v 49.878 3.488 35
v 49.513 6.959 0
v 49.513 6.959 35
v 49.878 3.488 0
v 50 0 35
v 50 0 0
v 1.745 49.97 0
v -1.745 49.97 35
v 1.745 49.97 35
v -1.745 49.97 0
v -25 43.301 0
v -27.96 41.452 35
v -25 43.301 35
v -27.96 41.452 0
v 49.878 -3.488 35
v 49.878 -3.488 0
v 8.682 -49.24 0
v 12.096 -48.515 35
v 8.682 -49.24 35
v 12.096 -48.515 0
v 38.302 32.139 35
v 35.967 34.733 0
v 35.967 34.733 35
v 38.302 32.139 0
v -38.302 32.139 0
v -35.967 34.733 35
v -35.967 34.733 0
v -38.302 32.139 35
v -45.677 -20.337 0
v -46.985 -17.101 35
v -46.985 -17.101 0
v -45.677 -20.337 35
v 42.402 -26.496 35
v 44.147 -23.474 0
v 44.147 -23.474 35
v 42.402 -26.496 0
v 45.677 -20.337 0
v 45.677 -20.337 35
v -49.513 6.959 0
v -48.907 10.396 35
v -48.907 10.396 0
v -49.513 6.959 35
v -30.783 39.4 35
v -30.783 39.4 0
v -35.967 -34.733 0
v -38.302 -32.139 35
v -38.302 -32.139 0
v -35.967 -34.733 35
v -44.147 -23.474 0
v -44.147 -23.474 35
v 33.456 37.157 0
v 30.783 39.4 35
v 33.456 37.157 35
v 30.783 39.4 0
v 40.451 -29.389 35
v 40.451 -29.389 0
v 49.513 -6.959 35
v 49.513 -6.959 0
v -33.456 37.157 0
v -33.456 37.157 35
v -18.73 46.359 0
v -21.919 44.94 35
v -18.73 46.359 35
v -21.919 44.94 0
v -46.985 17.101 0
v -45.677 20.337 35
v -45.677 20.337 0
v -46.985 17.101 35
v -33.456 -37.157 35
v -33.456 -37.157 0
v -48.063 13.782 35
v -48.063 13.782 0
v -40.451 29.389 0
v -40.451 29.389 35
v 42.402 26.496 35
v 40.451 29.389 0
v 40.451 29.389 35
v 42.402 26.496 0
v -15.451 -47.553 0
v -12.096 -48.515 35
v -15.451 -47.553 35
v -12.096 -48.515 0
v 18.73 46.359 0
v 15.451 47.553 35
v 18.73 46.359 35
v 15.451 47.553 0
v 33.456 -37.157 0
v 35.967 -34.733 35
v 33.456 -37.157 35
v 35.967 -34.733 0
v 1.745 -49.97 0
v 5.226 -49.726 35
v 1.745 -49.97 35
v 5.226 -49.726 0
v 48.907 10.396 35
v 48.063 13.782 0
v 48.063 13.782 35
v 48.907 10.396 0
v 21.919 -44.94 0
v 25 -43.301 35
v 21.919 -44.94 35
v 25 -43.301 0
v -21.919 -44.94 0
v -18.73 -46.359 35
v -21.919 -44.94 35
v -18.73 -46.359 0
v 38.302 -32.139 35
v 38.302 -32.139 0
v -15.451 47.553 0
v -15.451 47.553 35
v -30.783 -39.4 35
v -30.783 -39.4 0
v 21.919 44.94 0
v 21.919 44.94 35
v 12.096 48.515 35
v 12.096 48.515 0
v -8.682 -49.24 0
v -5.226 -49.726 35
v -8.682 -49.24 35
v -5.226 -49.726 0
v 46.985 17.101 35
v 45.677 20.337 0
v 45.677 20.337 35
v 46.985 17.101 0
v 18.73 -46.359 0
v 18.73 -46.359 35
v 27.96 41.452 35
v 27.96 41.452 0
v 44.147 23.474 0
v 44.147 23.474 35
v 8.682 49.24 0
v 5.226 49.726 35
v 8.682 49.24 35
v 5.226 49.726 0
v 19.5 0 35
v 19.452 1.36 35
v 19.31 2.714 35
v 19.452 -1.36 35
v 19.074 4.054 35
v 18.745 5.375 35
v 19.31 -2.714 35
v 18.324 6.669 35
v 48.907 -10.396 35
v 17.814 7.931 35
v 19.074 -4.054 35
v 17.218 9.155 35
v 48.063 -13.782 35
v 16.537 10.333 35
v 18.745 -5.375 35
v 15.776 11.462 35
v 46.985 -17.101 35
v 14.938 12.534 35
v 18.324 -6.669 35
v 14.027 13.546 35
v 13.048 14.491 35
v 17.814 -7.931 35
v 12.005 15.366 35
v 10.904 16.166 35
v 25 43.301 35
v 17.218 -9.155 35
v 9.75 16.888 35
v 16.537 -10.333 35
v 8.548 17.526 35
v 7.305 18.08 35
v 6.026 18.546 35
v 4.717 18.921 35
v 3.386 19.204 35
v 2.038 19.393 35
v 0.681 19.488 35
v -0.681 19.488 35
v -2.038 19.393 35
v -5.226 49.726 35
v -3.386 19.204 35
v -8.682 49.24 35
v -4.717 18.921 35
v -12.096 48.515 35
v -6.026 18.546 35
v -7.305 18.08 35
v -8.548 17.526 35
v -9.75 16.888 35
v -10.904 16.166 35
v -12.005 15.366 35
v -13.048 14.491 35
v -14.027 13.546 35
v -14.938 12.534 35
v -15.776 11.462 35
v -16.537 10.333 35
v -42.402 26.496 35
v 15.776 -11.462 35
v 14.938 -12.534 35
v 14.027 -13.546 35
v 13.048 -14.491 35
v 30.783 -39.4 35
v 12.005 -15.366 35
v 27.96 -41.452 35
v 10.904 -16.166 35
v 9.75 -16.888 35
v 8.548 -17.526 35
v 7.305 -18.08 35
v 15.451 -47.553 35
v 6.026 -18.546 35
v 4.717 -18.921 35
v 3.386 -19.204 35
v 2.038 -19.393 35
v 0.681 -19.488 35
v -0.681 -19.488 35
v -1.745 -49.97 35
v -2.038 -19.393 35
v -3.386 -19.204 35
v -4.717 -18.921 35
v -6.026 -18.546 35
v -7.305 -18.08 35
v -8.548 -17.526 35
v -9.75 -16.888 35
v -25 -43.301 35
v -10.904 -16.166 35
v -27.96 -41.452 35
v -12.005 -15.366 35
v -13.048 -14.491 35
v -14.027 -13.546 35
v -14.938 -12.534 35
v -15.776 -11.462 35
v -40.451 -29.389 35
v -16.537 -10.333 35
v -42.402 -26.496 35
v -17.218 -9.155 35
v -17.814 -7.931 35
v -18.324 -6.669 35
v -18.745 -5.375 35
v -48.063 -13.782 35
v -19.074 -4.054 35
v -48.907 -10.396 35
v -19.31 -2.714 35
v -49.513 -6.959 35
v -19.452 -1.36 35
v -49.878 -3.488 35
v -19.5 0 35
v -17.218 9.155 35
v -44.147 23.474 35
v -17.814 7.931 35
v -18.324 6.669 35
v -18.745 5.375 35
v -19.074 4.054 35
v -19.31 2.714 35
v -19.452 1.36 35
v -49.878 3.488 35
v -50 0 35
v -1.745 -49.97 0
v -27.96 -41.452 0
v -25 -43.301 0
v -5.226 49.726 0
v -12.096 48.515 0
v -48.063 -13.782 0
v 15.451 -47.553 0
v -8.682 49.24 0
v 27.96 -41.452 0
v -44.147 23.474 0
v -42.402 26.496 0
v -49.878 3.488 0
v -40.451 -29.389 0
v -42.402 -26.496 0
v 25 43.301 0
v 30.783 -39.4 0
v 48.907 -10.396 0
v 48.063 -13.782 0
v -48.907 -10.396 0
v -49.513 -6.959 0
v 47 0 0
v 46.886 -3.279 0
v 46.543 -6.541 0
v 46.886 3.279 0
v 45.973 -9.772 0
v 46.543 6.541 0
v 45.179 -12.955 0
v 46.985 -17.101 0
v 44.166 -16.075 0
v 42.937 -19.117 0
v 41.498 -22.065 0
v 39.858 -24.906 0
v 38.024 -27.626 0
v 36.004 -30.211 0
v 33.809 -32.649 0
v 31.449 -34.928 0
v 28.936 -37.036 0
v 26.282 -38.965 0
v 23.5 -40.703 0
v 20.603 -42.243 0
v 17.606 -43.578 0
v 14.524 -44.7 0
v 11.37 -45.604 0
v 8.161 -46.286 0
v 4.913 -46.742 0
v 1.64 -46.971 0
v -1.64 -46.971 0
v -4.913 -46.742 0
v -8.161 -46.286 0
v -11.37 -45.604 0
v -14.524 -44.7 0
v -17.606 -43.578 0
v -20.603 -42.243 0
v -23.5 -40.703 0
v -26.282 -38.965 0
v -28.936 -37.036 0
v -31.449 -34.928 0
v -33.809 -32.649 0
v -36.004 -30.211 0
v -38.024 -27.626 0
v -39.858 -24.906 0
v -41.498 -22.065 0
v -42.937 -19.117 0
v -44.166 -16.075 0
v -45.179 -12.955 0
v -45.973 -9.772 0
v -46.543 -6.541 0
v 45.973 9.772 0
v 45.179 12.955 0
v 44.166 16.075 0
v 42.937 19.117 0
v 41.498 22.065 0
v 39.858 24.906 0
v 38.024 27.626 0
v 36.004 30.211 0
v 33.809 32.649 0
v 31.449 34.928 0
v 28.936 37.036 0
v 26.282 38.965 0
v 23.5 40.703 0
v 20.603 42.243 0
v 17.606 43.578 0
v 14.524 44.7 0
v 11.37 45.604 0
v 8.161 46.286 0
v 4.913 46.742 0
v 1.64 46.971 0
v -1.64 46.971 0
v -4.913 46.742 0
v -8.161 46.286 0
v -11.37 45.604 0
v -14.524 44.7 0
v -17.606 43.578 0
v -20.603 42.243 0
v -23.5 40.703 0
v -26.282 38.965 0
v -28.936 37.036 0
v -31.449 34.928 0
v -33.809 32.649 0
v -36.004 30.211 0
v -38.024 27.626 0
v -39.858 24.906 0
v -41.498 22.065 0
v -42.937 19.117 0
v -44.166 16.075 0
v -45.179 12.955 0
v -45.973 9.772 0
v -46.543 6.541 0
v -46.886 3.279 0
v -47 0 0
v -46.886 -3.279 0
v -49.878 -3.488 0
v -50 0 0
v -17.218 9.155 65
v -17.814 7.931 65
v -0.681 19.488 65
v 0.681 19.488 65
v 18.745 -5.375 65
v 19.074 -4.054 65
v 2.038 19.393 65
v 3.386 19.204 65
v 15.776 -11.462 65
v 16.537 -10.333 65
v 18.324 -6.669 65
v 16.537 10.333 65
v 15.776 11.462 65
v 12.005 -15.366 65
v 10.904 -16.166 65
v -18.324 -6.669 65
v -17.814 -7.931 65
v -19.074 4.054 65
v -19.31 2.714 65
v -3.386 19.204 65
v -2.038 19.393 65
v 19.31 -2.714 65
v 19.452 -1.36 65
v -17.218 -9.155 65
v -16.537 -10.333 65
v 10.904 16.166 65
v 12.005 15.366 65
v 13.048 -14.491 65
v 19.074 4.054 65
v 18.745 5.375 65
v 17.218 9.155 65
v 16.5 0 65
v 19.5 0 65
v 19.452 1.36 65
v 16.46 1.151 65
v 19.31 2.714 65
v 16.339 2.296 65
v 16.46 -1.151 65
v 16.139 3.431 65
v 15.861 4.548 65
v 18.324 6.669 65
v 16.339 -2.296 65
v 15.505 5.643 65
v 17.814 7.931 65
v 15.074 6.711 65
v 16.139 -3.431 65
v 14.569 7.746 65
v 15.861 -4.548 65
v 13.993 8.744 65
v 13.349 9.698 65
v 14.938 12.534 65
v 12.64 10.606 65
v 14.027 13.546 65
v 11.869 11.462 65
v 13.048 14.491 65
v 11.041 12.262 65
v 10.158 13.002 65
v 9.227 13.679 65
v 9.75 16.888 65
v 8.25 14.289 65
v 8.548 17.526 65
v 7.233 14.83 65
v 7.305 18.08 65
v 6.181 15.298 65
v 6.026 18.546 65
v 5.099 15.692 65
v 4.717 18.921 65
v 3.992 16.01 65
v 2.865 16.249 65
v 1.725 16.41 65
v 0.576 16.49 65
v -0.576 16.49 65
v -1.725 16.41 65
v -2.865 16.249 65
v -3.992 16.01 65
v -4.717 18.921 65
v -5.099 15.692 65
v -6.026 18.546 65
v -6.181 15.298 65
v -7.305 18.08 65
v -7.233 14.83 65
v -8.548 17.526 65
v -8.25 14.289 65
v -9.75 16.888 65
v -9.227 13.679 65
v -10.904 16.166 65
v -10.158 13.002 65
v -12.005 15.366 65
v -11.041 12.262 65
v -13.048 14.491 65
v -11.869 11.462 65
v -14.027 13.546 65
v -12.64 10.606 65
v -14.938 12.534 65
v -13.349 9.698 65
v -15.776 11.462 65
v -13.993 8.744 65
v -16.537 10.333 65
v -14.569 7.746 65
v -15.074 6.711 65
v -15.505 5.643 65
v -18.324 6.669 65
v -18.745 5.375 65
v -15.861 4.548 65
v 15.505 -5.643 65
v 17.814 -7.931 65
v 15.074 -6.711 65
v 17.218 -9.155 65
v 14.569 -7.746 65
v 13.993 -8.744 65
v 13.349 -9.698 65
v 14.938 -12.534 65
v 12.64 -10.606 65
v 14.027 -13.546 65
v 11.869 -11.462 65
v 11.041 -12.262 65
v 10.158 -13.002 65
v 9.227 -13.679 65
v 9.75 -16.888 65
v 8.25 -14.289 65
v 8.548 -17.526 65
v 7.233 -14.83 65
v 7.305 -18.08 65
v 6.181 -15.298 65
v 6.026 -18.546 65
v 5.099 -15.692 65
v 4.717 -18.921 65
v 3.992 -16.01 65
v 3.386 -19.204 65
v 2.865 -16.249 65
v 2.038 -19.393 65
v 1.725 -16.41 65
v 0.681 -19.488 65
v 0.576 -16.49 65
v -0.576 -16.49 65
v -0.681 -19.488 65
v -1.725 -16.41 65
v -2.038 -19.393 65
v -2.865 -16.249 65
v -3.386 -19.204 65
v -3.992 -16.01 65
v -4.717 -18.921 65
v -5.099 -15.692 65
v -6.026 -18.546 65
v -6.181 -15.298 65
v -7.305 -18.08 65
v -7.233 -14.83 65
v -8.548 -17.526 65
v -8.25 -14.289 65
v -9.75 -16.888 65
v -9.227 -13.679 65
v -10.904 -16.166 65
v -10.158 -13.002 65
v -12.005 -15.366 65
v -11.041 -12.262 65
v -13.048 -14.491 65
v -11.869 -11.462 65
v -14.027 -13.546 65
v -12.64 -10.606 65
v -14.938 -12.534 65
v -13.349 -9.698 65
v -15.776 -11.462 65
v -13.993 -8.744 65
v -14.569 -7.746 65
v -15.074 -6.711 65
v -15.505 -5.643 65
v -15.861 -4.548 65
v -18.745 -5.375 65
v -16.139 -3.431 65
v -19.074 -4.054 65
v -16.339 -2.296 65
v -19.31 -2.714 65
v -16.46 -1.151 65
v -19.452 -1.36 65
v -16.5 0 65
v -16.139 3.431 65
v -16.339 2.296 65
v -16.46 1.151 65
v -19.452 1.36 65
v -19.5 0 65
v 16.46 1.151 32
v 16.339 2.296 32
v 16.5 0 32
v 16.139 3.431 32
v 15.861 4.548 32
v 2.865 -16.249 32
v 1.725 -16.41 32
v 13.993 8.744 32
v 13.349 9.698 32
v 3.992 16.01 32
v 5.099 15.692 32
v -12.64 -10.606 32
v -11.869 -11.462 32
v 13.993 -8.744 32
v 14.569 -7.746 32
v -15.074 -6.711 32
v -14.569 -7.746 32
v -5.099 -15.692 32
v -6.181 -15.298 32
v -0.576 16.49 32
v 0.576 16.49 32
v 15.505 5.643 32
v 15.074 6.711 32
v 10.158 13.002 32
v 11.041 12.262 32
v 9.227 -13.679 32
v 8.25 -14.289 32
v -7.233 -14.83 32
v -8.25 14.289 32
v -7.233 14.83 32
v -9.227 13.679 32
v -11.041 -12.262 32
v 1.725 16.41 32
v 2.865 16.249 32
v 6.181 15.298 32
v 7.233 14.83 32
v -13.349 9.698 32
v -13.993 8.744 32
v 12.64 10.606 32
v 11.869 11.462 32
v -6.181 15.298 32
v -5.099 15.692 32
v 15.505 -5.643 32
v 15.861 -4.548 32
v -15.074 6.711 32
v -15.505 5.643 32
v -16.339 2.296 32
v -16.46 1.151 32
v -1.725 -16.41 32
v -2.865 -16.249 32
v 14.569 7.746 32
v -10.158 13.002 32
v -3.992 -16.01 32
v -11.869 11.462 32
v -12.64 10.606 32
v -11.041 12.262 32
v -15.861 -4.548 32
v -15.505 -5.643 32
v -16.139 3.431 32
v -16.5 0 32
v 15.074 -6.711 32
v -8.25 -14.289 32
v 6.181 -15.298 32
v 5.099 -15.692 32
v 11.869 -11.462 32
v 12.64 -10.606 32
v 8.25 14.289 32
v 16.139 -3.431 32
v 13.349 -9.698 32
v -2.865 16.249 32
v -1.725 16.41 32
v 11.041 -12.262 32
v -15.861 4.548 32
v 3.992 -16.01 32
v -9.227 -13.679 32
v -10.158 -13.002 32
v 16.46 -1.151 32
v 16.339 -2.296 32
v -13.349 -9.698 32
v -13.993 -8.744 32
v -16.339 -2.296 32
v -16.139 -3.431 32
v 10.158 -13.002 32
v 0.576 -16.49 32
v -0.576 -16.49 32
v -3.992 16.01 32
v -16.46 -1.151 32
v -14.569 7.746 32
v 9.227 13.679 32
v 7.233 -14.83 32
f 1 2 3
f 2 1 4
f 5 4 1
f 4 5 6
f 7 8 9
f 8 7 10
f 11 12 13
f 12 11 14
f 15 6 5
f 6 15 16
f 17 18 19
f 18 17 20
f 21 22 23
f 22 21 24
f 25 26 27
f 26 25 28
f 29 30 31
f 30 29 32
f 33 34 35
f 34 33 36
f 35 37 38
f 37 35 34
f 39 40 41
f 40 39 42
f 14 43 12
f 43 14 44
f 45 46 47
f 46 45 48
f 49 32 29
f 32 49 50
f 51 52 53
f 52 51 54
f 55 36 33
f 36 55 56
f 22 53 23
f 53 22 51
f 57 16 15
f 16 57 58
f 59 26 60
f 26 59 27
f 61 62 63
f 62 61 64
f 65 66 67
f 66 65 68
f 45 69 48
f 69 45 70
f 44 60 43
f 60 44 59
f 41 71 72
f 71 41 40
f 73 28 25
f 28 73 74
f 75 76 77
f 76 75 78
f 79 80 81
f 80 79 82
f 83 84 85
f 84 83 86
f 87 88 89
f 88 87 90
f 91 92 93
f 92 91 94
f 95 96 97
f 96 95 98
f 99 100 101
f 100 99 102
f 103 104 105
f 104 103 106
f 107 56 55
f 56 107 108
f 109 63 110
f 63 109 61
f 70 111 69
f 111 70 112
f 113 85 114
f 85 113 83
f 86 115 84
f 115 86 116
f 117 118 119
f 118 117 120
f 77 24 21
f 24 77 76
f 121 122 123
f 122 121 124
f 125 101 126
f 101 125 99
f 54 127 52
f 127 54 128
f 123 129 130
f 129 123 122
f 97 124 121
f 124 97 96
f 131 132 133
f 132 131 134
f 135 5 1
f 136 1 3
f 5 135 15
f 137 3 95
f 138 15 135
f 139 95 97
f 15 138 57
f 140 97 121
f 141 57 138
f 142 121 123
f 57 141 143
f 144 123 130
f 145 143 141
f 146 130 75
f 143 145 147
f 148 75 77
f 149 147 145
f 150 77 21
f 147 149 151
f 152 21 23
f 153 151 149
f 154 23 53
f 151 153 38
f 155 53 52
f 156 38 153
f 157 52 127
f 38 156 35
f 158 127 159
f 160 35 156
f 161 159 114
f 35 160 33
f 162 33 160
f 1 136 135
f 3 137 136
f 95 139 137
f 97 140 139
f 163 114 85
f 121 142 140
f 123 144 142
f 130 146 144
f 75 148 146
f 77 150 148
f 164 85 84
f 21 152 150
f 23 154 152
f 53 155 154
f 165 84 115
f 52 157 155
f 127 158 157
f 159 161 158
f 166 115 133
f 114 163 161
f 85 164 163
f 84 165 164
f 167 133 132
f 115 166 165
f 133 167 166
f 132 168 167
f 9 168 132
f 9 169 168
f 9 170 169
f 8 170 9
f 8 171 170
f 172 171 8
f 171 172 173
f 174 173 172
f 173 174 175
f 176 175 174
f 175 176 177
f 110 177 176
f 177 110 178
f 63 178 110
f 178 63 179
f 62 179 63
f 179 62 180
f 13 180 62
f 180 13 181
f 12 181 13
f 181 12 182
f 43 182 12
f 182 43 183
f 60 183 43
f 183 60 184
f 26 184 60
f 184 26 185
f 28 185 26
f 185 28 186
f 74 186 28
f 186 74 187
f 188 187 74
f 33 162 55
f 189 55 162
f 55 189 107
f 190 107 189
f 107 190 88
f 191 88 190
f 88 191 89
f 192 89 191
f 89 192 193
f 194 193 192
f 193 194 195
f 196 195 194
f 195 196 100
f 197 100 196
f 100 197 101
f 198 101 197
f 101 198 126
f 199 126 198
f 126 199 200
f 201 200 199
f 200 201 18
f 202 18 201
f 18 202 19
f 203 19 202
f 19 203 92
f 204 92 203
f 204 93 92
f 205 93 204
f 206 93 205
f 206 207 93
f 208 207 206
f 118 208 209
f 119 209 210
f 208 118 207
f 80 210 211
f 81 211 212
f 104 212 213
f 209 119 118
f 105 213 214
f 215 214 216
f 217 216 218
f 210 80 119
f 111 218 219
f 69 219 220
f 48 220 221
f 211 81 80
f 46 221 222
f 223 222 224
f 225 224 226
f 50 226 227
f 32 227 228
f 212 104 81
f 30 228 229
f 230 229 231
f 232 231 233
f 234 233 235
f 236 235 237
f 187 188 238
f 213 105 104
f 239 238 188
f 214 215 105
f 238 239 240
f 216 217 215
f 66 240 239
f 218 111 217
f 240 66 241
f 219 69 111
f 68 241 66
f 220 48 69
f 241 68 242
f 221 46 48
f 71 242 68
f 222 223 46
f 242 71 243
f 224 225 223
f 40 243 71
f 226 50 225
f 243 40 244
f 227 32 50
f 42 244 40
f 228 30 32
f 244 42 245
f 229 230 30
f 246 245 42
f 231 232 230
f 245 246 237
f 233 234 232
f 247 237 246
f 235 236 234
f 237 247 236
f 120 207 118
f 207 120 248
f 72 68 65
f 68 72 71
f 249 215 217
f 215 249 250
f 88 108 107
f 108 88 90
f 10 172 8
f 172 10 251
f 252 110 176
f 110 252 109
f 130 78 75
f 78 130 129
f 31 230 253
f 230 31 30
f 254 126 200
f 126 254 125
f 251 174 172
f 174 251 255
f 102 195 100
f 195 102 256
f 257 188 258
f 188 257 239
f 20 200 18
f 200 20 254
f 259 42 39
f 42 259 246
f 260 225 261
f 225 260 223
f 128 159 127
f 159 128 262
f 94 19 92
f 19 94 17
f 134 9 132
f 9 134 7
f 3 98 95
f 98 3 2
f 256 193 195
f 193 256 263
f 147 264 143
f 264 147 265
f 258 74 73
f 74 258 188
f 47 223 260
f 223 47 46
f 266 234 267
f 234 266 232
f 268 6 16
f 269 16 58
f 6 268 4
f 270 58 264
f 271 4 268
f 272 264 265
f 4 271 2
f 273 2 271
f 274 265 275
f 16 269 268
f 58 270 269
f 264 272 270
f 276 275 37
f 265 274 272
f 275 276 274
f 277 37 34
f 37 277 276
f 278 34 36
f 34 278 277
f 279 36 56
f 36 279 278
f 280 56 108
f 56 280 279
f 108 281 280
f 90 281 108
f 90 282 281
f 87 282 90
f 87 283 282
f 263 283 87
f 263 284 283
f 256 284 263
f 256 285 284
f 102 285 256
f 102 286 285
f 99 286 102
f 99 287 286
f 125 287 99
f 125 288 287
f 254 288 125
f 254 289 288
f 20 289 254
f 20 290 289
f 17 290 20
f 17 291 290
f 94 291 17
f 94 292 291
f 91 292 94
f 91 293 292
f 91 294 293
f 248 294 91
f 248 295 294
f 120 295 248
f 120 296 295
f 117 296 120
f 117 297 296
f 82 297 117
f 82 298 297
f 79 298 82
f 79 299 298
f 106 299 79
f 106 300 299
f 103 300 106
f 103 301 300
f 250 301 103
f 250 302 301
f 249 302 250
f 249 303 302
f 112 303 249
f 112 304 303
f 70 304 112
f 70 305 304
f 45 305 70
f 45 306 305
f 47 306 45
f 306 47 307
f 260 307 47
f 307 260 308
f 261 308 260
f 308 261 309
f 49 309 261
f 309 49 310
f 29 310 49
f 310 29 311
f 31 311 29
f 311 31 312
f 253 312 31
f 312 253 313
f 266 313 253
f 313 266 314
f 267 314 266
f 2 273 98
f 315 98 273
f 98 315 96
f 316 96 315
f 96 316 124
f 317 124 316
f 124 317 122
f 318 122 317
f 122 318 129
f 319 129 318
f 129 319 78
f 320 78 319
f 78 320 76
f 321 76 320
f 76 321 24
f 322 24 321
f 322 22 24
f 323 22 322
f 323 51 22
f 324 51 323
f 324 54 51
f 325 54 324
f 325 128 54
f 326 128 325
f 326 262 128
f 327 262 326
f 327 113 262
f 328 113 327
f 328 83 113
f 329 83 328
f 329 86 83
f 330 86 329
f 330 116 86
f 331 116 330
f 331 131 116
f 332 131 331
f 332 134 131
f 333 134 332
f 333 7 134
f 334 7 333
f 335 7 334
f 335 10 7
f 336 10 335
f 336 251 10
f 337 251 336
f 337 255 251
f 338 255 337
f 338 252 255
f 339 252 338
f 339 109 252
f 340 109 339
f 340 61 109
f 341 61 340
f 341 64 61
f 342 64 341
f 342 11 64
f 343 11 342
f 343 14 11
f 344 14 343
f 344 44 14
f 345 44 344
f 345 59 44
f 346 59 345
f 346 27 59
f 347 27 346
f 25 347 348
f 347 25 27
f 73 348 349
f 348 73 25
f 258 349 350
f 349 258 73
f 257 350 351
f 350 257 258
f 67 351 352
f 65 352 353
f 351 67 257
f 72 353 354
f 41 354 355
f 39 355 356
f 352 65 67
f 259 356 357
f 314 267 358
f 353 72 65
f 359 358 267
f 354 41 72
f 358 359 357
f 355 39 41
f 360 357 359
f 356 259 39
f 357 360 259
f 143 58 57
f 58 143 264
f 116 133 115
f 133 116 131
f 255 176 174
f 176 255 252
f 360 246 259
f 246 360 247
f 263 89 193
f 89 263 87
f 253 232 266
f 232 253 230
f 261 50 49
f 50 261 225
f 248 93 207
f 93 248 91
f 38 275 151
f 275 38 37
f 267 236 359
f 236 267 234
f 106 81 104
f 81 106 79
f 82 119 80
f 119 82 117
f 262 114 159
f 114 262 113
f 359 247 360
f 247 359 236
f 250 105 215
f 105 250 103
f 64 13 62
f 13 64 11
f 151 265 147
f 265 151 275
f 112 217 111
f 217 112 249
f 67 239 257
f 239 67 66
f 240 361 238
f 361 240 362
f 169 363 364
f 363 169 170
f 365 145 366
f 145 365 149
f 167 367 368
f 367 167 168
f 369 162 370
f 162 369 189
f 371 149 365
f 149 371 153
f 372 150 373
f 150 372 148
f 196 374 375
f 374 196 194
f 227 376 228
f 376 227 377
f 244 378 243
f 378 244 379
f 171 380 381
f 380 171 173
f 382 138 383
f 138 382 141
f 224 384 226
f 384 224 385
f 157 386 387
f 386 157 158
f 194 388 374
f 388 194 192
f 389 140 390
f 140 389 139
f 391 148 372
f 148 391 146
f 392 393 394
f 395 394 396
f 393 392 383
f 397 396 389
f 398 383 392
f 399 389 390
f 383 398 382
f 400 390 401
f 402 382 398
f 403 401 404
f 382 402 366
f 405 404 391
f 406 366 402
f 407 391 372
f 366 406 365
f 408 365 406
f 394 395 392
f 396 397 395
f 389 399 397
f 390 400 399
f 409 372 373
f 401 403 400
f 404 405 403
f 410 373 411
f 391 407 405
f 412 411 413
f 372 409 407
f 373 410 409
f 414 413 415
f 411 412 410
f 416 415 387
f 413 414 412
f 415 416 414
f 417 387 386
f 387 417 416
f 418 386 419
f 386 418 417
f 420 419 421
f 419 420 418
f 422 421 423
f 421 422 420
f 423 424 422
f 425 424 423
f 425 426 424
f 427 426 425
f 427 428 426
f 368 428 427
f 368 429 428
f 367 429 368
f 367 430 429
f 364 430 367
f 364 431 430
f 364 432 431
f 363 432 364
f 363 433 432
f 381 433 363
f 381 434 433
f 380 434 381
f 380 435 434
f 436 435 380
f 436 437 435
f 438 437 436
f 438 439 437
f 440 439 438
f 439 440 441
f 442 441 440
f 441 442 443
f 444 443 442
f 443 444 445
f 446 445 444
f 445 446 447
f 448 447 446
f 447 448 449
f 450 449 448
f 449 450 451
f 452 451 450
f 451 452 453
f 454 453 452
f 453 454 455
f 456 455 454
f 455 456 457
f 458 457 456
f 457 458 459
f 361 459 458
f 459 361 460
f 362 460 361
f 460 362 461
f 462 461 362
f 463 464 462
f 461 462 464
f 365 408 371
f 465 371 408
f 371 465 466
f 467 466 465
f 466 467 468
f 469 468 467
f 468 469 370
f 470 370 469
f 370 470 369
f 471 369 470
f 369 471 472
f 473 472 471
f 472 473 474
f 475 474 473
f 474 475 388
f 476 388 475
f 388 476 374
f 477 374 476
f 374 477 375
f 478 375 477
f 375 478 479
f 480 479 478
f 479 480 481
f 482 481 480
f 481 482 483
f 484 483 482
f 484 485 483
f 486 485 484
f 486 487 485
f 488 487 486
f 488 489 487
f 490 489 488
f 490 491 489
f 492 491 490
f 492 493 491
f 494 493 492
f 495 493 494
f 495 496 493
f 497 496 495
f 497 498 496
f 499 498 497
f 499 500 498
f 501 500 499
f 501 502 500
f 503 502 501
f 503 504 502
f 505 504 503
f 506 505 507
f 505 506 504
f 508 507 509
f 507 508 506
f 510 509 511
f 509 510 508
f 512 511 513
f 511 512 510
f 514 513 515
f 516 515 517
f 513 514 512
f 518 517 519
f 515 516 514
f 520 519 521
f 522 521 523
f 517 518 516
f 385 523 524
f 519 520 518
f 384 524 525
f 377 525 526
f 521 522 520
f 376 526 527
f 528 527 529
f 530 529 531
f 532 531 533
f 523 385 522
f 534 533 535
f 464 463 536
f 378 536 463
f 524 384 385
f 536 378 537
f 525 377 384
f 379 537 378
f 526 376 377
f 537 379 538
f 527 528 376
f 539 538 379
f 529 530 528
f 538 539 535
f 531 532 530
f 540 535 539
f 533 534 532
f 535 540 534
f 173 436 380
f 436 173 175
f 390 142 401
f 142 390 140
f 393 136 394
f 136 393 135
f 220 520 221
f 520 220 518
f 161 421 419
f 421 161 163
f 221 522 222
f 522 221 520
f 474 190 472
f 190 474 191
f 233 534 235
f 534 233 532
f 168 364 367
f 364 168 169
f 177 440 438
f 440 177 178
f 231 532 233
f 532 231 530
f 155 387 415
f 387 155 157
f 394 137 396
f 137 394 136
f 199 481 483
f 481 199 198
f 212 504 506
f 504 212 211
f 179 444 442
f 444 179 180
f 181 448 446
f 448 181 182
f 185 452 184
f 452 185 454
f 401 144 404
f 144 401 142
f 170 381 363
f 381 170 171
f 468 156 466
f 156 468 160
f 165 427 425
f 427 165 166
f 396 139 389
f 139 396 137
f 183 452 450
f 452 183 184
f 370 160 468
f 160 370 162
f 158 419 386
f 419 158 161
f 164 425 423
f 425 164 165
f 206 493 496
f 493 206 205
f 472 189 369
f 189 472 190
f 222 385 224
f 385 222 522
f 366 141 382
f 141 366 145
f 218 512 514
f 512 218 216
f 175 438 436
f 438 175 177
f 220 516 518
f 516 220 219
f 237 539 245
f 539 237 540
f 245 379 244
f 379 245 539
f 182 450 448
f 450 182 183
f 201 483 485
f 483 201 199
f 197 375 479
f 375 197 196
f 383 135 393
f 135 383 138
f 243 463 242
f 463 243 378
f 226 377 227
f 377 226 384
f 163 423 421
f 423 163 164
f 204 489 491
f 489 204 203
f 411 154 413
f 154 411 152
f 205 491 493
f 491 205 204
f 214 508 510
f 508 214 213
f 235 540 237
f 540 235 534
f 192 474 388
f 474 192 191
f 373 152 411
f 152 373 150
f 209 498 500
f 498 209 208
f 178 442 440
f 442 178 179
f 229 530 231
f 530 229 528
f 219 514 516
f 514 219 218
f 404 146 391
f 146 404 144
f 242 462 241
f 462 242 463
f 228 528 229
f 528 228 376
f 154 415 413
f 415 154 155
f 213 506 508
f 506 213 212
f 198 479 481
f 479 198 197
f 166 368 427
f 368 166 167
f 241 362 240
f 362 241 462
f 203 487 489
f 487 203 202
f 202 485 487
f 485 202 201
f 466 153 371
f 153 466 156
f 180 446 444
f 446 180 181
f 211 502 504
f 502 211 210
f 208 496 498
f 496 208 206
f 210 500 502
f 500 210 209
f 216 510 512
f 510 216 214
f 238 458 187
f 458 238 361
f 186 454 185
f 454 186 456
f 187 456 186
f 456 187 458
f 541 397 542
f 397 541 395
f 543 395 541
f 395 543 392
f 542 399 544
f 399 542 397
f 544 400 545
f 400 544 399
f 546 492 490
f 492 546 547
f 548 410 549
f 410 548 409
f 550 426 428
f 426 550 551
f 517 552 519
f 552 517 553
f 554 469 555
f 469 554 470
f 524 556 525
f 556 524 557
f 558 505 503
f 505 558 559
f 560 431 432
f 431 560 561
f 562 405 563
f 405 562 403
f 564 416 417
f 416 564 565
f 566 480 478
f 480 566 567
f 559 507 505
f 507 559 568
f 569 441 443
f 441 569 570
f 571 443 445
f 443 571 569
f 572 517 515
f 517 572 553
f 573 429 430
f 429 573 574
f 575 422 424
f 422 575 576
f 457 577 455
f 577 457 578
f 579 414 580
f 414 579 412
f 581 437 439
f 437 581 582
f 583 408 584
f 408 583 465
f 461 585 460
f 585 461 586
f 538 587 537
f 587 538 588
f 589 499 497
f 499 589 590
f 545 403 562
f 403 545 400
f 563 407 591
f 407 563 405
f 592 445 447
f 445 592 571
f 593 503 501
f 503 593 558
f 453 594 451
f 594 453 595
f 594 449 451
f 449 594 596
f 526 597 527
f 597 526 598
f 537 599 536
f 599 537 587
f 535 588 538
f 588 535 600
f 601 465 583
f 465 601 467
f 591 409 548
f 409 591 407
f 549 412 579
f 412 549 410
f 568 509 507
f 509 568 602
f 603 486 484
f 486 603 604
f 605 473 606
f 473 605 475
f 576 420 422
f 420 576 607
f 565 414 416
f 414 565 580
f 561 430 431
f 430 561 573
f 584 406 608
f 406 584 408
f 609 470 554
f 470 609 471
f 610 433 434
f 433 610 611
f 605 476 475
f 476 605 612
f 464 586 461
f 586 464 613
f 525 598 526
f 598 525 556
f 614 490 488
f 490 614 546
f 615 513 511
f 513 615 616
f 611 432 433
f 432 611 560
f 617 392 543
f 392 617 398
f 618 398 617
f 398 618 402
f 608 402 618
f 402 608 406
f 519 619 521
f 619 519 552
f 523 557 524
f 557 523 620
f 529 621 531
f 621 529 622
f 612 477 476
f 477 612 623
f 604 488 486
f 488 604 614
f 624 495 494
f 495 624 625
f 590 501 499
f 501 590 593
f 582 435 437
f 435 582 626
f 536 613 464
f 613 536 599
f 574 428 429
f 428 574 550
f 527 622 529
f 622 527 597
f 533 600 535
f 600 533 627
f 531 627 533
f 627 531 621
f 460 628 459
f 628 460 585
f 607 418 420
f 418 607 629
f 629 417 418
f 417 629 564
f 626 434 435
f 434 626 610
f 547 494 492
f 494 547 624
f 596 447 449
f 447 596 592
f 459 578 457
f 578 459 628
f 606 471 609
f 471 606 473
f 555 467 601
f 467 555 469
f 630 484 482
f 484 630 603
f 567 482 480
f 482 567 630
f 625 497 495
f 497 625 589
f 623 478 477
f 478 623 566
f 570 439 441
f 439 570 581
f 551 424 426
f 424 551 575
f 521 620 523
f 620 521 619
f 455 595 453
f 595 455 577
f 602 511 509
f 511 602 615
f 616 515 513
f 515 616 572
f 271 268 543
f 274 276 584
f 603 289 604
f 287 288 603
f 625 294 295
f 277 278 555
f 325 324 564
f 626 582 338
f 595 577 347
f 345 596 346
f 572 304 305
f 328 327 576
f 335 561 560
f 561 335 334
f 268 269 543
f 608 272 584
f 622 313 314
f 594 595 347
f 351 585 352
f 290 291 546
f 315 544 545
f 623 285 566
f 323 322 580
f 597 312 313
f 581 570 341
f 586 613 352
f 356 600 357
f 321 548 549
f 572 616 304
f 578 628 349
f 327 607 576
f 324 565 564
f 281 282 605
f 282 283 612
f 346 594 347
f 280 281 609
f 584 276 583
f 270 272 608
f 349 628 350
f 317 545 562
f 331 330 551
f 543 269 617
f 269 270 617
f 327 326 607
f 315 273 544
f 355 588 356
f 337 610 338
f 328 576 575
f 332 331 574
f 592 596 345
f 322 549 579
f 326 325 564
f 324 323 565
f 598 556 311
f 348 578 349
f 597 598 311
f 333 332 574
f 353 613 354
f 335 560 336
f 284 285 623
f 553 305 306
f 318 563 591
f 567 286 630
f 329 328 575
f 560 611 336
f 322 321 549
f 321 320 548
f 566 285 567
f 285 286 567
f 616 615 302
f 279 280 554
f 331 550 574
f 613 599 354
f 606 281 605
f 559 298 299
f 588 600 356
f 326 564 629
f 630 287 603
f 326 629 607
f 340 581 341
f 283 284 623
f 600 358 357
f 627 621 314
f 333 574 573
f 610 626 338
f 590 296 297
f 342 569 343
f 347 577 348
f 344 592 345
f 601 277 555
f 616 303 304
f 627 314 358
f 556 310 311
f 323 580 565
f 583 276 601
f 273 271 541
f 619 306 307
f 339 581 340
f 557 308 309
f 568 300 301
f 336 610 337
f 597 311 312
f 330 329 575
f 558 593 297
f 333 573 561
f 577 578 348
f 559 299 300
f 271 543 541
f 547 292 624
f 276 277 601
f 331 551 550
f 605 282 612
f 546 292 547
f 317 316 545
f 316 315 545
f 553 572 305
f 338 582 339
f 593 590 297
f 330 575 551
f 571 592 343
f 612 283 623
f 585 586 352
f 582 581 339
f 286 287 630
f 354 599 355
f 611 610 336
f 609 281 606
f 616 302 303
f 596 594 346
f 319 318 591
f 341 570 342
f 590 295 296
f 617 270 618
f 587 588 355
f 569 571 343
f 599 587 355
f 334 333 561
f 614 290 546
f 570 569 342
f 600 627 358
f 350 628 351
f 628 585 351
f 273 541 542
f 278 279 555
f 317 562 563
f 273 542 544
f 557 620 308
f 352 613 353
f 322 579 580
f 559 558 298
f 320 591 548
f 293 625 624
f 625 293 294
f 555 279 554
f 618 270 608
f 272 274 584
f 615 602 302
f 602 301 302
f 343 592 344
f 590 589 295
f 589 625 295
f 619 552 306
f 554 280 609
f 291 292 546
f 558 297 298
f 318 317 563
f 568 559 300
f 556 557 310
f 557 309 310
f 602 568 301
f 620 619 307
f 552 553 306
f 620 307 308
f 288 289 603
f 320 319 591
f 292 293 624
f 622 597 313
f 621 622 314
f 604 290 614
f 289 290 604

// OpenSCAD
/*
 
    Standerd hose adapter for 100mm pipe
    Anton Augustsson
    
*/

$fn=90;

mountLenght  = 35;
mountRadius  = 100/2;
hoseLenght   = 30+mountLenght;
hoseRadius   = 33/2;

wallThickness = 3;
wallesRadius = hoseRadius+wallThickness;



difference() {
union(){
cylinder(
    h = mountLenght, 
    r = mountRadius);

cylinder(
    h = hoseLenght, 
    r = wallesRadius);

}
union() {
cylinder(
    h = hoseLenght+1, 
    r = hoseRadius);

cylinder(
    h = mountLenght-wallThickness, 
    r1 = mountRadius-wallThickness,
    r2 = hoseRadius);

}}
